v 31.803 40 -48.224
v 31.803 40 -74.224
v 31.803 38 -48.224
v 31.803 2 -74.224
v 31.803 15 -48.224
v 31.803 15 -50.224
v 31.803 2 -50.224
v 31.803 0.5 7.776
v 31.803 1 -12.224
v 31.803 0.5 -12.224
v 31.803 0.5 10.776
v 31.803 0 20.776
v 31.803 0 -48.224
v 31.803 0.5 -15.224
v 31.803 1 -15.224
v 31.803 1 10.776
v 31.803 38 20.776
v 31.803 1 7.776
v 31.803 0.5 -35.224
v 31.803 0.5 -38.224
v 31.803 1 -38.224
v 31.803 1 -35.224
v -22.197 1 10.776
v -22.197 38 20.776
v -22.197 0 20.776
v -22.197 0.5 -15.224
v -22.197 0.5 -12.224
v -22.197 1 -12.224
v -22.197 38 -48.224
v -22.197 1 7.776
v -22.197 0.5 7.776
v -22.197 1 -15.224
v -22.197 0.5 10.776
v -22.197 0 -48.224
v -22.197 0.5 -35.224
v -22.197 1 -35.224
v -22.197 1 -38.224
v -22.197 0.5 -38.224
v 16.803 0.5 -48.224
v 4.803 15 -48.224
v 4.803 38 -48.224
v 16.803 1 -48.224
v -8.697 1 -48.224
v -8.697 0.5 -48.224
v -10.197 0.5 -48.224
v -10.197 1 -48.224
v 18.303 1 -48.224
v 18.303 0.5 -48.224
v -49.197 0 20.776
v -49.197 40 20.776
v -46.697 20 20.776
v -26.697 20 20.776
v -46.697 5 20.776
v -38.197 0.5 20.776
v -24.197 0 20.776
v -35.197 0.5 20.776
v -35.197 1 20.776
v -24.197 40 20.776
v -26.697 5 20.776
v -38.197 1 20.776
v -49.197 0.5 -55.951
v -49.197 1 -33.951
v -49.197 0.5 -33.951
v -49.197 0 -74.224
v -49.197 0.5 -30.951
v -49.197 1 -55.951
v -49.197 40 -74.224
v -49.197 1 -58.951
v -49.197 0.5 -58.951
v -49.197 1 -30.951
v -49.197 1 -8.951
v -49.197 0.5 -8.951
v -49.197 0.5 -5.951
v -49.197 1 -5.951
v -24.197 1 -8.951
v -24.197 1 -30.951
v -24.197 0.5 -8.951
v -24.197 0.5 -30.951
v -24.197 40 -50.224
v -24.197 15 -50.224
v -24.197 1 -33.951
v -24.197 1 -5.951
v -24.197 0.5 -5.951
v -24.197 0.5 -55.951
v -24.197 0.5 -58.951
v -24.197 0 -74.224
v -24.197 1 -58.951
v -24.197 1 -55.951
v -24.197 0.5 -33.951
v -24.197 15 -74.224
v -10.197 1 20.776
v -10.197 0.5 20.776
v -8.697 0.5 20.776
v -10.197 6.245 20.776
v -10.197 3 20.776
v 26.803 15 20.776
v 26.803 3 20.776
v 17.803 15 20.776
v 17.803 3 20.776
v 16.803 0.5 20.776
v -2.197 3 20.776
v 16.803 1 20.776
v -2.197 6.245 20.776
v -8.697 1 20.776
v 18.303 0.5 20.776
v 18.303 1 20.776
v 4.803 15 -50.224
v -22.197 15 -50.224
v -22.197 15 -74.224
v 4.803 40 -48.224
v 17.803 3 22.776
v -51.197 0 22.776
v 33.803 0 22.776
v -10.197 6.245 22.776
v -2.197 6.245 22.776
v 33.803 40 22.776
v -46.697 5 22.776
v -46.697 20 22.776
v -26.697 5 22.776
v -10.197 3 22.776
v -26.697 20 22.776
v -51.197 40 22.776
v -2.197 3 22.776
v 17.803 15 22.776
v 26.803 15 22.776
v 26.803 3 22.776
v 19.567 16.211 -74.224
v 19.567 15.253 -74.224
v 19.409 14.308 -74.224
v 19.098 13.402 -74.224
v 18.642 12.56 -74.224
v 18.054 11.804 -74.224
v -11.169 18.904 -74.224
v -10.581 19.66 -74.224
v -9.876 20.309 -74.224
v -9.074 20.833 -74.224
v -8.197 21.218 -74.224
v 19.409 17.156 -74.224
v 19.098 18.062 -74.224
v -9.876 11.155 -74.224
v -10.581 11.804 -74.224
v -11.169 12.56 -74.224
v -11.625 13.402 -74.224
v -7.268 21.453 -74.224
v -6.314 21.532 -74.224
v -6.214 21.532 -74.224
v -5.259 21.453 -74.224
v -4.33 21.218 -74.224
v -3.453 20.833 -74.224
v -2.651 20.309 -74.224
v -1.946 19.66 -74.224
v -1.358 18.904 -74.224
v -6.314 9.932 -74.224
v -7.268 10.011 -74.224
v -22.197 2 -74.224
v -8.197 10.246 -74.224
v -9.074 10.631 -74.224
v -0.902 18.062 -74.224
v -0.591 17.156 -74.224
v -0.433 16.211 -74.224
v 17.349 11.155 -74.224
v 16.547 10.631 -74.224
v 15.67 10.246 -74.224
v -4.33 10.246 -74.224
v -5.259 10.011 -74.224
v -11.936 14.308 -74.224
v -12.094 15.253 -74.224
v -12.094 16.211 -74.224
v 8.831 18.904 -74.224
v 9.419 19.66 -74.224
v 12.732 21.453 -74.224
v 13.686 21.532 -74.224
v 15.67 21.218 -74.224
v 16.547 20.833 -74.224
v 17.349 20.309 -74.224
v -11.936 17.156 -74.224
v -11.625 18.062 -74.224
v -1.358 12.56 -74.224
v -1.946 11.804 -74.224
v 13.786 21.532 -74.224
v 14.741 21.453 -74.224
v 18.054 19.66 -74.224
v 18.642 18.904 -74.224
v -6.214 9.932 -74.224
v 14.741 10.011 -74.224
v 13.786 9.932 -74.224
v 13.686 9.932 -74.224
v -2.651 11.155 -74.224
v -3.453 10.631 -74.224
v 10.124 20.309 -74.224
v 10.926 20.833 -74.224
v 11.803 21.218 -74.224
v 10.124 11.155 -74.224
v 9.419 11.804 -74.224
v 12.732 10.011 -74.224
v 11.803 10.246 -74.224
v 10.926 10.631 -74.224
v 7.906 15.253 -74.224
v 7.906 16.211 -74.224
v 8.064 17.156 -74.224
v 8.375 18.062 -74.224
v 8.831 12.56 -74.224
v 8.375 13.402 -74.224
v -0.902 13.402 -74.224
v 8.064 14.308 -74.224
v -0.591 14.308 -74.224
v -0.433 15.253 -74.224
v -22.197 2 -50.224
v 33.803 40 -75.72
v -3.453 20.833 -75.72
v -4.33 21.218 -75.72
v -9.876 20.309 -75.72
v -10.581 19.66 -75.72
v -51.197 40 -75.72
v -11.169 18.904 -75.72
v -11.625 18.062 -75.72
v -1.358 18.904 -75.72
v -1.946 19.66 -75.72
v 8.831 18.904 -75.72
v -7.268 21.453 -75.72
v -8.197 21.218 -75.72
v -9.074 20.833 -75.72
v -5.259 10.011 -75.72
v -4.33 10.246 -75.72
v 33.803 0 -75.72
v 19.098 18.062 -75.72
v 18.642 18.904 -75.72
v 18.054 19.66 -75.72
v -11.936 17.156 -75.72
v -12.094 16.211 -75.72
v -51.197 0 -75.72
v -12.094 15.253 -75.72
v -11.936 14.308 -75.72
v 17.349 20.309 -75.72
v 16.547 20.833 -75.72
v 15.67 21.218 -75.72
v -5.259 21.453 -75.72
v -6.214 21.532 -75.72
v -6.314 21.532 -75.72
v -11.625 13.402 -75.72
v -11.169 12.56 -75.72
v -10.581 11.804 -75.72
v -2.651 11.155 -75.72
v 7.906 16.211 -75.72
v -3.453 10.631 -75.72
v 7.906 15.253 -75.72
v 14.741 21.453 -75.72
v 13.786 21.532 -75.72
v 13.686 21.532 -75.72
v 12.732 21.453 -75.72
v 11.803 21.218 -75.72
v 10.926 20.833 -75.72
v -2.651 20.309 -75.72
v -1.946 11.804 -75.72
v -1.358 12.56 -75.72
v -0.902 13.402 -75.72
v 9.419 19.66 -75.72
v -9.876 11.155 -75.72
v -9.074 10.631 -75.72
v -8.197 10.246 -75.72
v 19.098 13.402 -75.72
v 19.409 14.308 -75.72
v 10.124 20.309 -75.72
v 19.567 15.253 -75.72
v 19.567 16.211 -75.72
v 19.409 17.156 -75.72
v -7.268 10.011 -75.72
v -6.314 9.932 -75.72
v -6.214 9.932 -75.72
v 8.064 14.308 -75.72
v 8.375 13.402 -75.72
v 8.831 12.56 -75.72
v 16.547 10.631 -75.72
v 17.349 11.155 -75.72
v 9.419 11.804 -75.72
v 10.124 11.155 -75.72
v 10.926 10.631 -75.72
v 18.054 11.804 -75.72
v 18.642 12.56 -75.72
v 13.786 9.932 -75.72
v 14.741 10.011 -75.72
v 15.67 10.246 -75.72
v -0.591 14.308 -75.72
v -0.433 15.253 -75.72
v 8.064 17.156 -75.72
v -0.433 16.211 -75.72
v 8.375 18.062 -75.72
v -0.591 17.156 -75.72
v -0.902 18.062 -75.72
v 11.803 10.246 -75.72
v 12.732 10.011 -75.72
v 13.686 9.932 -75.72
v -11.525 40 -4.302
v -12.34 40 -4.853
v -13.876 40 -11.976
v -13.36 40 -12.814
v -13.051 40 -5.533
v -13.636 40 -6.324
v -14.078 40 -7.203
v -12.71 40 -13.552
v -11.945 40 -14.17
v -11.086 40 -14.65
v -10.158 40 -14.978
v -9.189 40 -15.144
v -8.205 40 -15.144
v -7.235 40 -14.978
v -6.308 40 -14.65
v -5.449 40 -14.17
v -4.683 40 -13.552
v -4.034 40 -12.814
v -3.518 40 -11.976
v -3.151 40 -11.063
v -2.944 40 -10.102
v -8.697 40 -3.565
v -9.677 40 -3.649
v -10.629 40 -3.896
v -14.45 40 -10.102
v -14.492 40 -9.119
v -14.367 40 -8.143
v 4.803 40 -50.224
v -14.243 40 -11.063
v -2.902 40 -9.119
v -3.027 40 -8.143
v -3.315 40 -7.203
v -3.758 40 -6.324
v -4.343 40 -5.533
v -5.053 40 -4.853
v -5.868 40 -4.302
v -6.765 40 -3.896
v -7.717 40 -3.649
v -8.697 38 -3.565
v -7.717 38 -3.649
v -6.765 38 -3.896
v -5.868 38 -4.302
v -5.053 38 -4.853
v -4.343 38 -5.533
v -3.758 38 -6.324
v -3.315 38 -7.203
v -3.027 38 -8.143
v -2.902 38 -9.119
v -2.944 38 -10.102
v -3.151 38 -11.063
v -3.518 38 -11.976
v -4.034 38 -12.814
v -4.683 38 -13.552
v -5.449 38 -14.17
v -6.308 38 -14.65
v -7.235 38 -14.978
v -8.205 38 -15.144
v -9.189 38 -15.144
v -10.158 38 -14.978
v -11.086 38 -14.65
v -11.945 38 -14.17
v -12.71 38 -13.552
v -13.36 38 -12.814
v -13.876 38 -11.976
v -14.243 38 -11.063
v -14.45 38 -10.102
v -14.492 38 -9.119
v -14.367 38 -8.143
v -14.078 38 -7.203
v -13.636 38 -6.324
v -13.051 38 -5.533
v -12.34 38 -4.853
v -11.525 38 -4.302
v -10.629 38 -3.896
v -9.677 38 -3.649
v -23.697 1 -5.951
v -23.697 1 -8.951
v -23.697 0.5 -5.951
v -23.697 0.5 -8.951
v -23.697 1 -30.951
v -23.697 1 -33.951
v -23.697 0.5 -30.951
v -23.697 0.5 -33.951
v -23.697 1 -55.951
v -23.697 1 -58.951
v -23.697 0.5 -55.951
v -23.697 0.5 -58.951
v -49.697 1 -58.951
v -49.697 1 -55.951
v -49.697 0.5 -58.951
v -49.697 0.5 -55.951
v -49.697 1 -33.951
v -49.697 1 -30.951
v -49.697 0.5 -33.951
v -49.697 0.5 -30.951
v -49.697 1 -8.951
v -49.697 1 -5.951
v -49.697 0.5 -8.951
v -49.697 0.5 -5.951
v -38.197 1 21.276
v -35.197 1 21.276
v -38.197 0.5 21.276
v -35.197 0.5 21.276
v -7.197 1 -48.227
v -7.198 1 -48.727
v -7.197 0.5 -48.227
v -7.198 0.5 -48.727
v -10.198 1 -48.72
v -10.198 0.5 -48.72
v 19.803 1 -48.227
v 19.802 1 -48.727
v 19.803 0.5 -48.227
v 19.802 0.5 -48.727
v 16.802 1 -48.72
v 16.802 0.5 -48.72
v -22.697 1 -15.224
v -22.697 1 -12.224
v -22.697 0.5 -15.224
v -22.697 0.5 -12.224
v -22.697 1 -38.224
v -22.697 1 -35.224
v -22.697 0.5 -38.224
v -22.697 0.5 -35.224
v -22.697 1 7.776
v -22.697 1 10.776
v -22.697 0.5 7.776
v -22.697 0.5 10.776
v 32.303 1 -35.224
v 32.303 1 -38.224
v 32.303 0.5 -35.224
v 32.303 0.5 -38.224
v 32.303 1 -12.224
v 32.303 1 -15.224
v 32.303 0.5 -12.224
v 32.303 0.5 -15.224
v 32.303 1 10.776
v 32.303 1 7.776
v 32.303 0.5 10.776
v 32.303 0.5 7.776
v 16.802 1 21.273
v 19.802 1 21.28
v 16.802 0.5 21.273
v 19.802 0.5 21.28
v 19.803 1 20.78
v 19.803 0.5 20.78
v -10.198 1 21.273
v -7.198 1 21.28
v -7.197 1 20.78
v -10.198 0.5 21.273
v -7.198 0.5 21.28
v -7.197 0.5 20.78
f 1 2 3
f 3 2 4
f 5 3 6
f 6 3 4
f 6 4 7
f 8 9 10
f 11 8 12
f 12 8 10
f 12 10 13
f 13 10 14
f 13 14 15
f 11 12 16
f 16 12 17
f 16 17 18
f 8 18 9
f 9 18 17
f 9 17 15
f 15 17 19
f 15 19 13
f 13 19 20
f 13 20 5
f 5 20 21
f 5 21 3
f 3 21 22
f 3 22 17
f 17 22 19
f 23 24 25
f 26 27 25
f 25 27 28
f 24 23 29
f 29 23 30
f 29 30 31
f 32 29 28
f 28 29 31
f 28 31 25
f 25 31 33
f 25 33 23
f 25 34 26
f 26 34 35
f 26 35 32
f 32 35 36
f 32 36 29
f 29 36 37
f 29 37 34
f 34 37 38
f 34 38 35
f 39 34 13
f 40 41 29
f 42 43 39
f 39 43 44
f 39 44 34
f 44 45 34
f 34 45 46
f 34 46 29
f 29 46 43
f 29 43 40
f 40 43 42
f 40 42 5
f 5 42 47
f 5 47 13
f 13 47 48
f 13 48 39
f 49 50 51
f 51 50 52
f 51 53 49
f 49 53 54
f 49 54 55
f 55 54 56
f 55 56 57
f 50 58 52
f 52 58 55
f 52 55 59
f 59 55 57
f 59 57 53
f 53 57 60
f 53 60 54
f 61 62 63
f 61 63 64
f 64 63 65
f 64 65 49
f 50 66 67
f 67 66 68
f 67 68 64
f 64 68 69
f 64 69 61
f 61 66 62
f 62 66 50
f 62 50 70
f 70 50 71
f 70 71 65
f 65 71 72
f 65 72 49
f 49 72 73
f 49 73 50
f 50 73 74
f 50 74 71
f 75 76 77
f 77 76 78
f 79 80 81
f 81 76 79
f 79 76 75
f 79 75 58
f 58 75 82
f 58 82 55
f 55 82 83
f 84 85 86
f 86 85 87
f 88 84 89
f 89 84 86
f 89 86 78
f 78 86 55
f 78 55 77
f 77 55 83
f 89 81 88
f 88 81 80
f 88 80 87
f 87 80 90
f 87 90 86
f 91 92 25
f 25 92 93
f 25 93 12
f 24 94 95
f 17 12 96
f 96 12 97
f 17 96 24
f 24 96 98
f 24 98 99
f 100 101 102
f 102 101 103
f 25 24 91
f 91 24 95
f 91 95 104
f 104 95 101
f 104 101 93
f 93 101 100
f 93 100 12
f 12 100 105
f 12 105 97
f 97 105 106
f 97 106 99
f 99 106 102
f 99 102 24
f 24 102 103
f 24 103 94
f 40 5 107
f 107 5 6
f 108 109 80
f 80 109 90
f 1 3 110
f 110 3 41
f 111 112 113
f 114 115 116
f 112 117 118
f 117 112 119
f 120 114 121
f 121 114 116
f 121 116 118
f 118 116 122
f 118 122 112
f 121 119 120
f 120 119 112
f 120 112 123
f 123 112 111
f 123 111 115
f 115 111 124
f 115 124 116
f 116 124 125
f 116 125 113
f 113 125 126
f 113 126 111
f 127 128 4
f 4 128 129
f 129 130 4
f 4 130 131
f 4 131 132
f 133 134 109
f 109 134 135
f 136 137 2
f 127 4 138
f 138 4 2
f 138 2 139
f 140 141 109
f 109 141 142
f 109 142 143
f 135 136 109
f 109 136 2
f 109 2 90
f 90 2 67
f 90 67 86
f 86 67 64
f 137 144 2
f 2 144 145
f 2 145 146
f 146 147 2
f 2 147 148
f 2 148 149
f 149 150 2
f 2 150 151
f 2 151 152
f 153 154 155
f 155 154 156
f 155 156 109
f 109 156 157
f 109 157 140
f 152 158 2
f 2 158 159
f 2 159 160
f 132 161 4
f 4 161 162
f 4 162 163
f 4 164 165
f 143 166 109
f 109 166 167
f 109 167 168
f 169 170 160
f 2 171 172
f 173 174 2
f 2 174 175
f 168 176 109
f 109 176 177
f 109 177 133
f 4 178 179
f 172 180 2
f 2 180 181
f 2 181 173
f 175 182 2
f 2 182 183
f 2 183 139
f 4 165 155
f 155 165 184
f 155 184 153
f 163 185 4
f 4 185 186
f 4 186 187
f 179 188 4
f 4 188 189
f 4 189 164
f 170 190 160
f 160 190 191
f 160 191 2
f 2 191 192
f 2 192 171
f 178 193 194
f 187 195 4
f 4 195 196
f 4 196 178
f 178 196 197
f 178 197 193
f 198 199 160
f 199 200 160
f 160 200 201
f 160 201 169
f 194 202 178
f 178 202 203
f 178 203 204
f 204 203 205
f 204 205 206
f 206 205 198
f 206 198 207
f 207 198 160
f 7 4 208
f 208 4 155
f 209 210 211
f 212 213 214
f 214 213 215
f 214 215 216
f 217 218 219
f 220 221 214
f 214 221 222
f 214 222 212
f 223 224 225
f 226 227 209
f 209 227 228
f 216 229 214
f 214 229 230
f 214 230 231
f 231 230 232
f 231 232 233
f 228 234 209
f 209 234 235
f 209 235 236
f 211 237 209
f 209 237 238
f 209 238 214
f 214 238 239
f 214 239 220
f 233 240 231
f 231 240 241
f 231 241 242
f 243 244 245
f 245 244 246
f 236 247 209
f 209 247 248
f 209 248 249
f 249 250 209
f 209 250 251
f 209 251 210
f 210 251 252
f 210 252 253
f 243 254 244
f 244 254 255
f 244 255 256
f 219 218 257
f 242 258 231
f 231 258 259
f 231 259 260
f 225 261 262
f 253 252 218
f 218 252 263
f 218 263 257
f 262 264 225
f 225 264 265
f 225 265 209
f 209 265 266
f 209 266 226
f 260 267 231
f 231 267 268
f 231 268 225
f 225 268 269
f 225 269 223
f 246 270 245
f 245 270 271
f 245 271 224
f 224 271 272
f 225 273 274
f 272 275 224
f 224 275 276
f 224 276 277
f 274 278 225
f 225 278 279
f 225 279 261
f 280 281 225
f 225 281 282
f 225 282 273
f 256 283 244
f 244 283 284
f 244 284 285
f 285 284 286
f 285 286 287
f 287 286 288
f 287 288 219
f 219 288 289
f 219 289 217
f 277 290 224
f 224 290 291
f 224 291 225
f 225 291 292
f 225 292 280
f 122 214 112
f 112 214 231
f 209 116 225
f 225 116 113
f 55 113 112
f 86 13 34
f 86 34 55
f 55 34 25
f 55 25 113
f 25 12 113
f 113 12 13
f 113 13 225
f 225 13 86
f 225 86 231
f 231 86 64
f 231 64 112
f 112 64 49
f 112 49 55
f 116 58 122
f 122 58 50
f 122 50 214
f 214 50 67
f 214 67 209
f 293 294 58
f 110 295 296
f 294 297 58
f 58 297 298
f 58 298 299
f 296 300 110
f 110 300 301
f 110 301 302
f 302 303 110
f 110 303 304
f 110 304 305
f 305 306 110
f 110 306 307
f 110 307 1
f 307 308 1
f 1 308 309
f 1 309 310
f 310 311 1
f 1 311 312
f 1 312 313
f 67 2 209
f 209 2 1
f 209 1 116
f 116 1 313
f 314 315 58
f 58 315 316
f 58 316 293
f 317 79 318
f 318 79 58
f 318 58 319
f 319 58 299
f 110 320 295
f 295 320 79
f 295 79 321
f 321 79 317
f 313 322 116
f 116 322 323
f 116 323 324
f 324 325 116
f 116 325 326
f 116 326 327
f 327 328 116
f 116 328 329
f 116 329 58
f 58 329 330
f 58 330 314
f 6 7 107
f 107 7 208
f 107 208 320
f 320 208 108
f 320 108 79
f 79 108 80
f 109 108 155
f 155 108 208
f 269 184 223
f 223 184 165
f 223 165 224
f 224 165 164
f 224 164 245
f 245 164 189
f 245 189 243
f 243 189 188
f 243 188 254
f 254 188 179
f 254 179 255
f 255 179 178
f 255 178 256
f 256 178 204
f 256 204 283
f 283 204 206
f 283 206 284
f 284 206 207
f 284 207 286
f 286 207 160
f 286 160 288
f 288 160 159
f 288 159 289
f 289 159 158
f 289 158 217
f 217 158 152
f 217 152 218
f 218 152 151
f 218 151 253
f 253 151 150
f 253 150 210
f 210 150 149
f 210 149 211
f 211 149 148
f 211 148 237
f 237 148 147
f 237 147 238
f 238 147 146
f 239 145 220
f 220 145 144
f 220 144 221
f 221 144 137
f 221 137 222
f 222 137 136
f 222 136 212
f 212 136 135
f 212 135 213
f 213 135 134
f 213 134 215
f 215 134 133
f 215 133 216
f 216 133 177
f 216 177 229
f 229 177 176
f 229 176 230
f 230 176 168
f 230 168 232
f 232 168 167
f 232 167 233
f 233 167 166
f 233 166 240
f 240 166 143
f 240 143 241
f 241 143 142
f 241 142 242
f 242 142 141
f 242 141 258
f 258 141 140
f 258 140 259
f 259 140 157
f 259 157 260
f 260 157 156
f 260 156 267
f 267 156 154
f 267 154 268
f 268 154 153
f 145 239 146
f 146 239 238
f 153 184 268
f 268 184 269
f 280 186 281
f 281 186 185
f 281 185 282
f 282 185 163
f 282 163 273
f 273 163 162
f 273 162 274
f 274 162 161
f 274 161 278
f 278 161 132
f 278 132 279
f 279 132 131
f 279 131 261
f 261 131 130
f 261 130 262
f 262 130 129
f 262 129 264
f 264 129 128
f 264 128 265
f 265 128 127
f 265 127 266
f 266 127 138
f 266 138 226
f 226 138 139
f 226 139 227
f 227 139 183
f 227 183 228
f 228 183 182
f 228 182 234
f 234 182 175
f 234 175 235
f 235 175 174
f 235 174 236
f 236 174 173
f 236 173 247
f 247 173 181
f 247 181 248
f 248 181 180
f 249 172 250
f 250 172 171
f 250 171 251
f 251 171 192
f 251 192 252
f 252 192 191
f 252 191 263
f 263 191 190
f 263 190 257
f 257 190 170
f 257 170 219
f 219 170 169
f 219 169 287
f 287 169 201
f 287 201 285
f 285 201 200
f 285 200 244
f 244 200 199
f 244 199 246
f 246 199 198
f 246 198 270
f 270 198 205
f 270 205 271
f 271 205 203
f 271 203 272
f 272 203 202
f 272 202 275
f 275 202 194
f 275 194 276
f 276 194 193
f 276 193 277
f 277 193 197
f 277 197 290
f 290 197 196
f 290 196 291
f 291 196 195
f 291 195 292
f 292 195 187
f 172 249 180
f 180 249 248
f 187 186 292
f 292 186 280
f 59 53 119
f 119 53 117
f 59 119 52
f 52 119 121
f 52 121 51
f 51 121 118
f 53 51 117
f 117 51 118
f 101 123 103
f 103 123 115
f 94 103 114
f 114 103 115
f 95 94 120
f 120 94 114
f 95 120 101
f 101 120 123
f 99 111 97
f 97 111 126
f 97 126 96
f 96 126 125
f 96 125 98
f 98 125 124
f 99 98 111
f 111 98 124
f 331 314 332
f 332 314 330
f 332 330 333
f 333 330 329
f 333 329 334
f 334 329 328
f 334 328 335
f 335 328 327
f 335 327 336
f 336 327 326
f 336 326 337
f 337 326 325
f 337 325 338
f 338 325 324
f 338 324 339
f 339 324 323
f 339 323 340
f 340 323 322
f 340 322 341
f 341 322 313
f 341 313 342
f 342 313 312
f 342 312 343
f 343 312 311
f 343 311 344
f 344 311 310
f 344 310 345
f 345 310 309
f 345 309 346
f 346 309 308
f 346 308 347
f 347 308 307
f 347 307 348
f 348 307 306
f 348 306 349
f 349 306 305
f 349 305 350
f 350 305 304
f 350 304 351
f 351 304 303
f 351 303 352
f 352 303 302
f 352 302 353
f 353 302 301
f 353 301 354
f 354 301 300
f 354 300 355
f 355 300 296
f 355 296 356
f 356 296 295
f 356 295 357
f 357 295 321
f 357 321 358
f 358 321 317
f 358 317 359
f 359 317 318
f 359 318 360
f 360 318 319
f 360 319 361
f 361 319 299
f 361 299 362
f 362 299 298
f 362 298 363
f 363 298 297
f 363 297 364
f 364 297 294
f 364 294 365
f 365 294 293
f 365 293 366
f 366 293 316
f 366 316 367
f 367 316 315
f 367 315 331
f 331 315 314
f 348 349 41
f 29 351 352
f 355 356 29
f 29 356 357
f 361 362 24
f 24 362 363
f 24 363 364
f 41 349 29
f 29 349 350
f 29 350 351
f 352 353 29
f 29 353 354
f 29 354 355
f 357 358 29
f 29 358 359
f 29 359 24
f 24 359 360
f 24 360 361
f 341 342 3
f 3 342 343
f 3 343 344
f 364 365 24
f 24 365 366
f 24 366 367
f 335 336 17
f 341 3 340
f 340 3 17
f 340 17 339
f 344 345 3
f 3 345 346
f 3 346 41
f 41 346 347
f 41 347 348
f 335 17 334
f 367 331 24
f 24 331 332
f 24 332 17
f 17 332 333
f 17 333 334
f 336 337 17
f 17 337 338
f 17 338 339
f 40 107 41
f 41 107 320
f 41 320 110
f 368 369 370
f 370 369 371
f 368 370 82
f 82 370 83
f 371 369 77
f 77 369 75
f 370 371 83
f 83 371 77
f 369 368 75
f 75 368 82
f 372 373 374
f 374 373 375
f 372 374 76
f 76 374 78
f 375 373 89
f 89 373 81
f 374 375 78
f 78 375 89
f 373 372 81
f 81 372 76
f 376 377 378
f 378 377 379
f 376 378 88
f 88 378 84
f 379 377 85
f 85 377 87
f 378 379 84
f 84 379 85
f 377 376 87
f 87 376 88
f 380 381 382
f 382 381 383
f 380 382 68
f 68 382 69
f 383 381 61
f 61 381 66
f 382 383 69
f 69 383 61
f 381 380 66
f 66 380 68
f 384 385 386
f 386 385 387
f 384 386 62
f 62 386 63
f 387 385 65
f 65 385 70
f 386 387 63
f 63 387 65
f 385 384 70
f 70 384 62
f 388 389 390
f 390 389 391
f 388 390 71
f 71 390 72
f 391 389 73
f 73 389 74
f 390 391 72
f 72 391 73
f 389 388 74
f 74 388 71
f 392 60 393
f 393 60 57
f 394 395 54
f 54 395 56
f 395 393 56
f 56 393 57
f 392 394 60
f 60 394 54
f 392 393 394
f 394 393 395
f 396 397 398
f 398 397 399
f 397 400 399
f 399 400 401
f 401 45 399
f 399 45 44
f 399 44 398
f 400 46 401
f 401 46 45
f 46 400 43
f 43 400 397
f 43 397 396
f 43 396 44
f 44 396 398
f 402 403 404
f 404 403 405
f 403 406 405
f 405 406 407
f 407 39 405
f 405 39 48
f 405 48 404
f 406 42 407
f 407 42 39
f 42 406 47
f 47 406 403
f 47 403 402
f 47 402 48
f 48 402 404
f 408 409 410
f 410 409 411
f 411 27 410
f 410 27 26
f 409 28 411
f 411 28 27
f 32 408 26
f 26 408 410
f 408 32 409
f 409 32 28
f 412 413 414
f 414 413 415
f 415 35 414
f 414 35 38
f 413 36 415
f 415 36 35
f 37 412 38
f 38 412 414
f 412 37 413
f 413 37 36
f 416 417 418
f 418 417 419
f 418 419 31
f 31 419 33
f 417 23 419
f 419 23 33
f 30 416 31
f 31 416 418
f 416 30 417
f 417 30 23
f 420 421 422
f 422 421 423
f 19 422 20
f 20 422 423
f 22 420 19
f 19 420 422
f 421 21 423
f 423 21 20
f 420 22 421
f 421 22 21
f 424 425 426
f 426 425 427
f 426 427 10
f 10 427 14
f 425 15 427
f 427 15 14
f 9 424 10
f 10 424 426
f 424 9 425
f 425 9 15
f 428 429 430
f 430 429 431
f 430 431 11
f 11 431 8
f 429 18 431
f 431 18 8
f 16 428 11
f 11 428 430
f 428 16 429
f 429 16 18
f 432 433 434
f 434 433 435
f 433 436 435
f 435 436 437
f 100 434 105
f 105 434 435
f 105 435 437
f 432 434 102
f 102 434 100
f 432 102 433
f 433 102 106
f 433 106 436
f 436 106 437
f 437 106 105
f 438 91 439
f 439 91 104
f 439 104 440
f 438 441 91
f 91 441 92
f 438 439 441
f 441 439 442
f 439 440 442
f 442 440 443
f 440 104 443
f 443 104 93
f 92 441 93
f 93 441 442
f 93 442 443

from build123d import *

# Parameters (mm, degrees)
SKETCH_1_W                   = 85
SKETCH_1_H                   = 98.49643328
EXTRUDE_1_DEPTH              = 2
SKETCH_1_6_W                 = 2
SKETCH_1_6_H                 = 95
EXTRUDE_2_DEPTH              = 40
SKETCH_1_7_W                 = 54
SKETCH_1_7_H                 = 2
BOSS_EXTRUDE1_DEPTH          = 15
F_10_0_START                 = -75.720313778
F_10_0_MM_DOWEL_HOLES1_DEPTH = 1.49643328
SKETCH5_W                    = 9
SKETCH5_H                    = 12
SKETCH5_W_2                  = 8
SKETCH5_H_2                  = 3.244606683
SKETCH5_W_3                  = 20
SKETCH5_H_3                  = 15
CUT_EXTRUDE1_DEPTH           = 15
SKETCH8_W                    = 25
SKETCH8_H                    = 95
SKETCH8_W_2                  = 54
SKETCH8_H_2                  = 69
CUT_EXTRUDE2_DEPTH           = 10
BOSS_EXTRUDE2_DEPTH          = 25
SKETCH11_R                   = 5.8
BOSS_EXTRUDE3_DEPTH          = 2
CAVITY1_START                = -49.696743418
CAVITY1_OUTLINE_W            = 0.5
CAVITY1_OUTLINE_H            = 3
CAVITY1_DEPTH                = 26
CAVITY1_START_2              = -38.196743418
CAVITY1_2_OUTLINE_W          = 0.5
CAVITY1_2_OUTLINE_H          = 0.5
CAVITY1_2_DEPTH              = 3
CAVITY2_START                = 0.5
CAVITY2_OUTLINE_W            = 0.5
CAVITY2_OUTLINE_H            = 3
CAVITY2_DEPTH                = 0.5


# Read off the part's stored shape, not the designer's step: Ø10.0 mm Dowel Holes1, Cavity1, Cavity2
with BuildPart() as part:
    # ｽｹｯﾁ1 → ﾎﾞｽ - 押し出し1 (new body)
    with BuildSketch(Plane(origin=(0, 0, 0), x_dir=(1, 0, 0), z_dir=(0, 1, 0))):
        with Locations((-8.696743418, 26.472097138)):
            Rectangle(SKETCH_1_W, SKETCH_1_H)
    extrude(amount=EXTRUDE_1_DEPTH)

    # ｽｹｯﾁ1<6> → ﾎﾞｽ - 押し出し2 (add)
    with BuildSketch(Plane(origin=(0, 0, 0), x_dir=(1, 0, 0), z_dir=(0, 1, 0))):
        with Locations((-50.196743418, 26.723880498)):
            Rectangle(SKETCH_1_6_W, SKETCH_1_6_H)
        Polygon((33.803256582, -20.776119502), (31.803256582, -20.776119502), (-22.196743418, -20.776119502), (-24.196743418, -20.776119502), (-49.196743418, -20.776119502), (-51.196743418, -20.776119502), (-51.196743418, -22.776119502), (33.803256582, -22.776119502), align=None)
        Polygon((-22.196743418, 74.223880498), (31.803256582, 74.223880498), (31.803256582, 75.720313778), (-51.196743418, 75.720313778), (-51.196743418, 74.223880498), (-49.196743418, 74.223880498), (-24.196743418, 74.223880498), align=None)
        Polygon((31.803256582, 50.223880498), (31.803256582, 48.223880498), (31.803256582, -20.776119502), (33.803256582, -20.776119502), (33.803256582, 75.720313778), (31.803256582, 75.720313778), (31.803256582, 74.223880498), align=None)
    extrude(amount=EXTRUDE_2_DEPTH)

    # ｽｹｯﾁ1<7> → Boss-Extrude1 (add)
    with BuildSketch(Plane(origin=(0, 0, 0), x_dir=(1, 0, 0), z_dir=(0, 1, 0))):
        with Locations((4.803256582, 49.223880498)):
            Rectangle(SKETCH_1_7_W, SKETCH_1_7_H)
        Polygon((-22.196743418, -20.776119502), (-22.196743418, 48.223880498), (-22.196743418, 50.223880498), (-22.196743418, 74.223880498), (-24.196743418, 74.223880498), (-24.196743418, -20.776119502), align=None)
    extrude(amount=BOSS_EXTRUDE1_DEPTH)

    # Ø10.0 mm Dowel Holes1 outline → Ø10.0 mm Dowel Holes1 (cut)
    with BuildSketch(Plane.XY.offset(F_10_0_START)):
        with BuildLine():
            Line((-6.31353142, 9.931926182), (-6.21353142, 9.931926182))
            ThreePointArc((-6.21353142, 9.931926182), (-0.41353142, 15.731926182), (-6.21353142, 21.531926182))
            Line((-6.21353142, 21.531926182), (-6.31353142, 21.531926182))
            ThreePointArc((-6.31353142, 21.531926182), (-12.11353142, 15.731926182), (-6.31353142, 9.931926182))
        make_face()
        with BuildLine():
            ThreePointArc((13.78646858, 9.931926182), (19.58646858, 15.731926182), (13.78646858, 21.531926182))
            Line((13.78646858, 21.531926182), (13.68646858, 21.531926182))
            ThreePointArc((13.68646858, 21.531926182), (7.88646858, 15.731926182), (13.68646858, 9.931926182))
            Line((13.68646858, 9.931926182), (13.78646858, 9.931926182))
        make_face()
    extrude(amount=F_10_0_MM_DOWEL_HOLES1_DEPTH, mode=Mode.SUBTRACT)

    # Sketch5 → Cut-Extrude1 (cut)
    with BuildSketch(Plane(origin=(0, 0, 20.776119502), x_dir=(-1, 0, 0), z_dir=(0, 0, -1))):
        with Locations((-22.303256582, 9)):
            Rectangle(SKETCH5_W, SKETCH5_H)
        with Locations((6.196743418, 4.622303342)):
            Rectangle(SKETCH5_W_2, SKETCH5_H_2)
        with Locations((36.696743418, 12.5)):
            Rectangle(SKETCH5_W_3, SKETCH5_H_3)
    extrude(amount=-CUT_EXTRUDE1_DEPTH, mode=Mode.SUBTRACT)

    # Sketch8 → Cut-Extrude2 (cut)
    with BuildSketch(Plane(origin=(0, 2, 0), x_dir=(1, 0, 0), z_dir=(0, 1, 0))):
        with Locations((-36.696743418, 26.723880498)):
            Rectangle(SKETCH8_W, SKETCH8_H)
        with Locations((4.803256582, 13.723880498)):
            Rectangle(SKETCH8_W_2, SKETCH8_H_2)
    extrude(amount=-CUT_EXTRUDE2_DEPTH, mode=Mode.SUBTRACT)



with BuildPart() as body_2:
    # Sketch9 → Boss-Extrude2 (new body)
    with BuildSketch(Plane(origin=(0, 15, 0), x_dir=(1, 0, 0), z_dir=(0, 1, 0))):
        Polygon((-22.196743418, -20.776119502), (-22.196743418, 48.223880498), (4.803256582, 48.223880498), (4.803256582, 50.223880498), (-24.196743418, 50.223880498), (-24.196743418, -20.776119502), align=None)
    extrude(amount=BOSS_EXTRUDE2_DEPTH)


with BuildPart() as part_1:
    add(part.part)

    add(body_2.part)  # Boss-Extrude3 merges body 2
    # Sketch11 → Boss-Extrude3 (add)
    with BuildSketch(Plane(origin=(0, 40, 0), x_dir=(1, 0, 0), z_dir=(0, 1, 0))):
        Polygon((31.803256582, 48.223880498), (-22.196743418, 48.223880498), (-22.196743418, 9.365118158), (-22.196743418, -20.776119502), (31.803256582, -20.776119502), align=None)
        with Locations(Location((-8.696743418, 9.365118158, 0), (0, 0, 270))):
            Circle(SKETCH11_R, mode=Mode.SUBTRACT)
    extrude(amount=-BOSS_EXTRUDE3_DEPTH)

    # Cavity1 outline → Cavity1 (cut)
    with BuildSketch(Plane.YZ.offset(CAVITY1_START)):
        with Locations((0.75, -7.451121589)):
            Rectangle(CAVITY1_OUTLINE_W, CAVITY1_OUTLINE_H)
        with Locations((0.75, -32.451121589)):
            Rectangle(CAVITY1_OUTLINE_W, CAVITY1_OUTLINE_H)
        with Locations((0.75, -57.451121589)):
            Rectangle(CAVITY1_OUTLINE_W, CAVITY1_OUTLINE_H)
    extrude(amount=CAVITY1_DEPTH, mode=Mode.SUBTRACT)

    # Cavity1 2 outline → Cavity1 2 (cut)
    with BuildSketch(Plane.YZ.offset(CAVITY1_START_2)):
        with Locations((0.75, 21.026119502)):
            Rectangle(CAVITY1_2_OUTLINE_W, CAVITY1_2_OUTLINE_H)
    extrude(amount=CAVITY1_2_DEPTH, mode=Mode.SUBTRACT)

    # Cavity2 outline → Cavity2 (cut)
    with BuildSketch(Plane(origin=(0, 0, 0), x_dir=(1, 0, 0), z_dir=(0, 1, 0)).offset(CAVITY2_START)):
        Polygon((-7.196747436, 48.227352565), (-7.197904792, 48.727351226), (-10.197896755, 48.720407091), (-10.196747436, 48.223880498), (-8.696743418, 48.223880498), align=None)
        Polygon((16.802103245, 48.720407091), (16.803252564, 48.223880498), (18.303256582, 48.223880498), (19.803252564, 48.227352565), (19.802095208, 48.727351226), align=None)
        with Locations((-22.446743418, 36.723880498)):
            Rectangle(CAVITY2_OUTLINE_W, CAVITY2_OUTLINE_H)
        with Locations((32.053256582, 36.723880498)):
            Rectangle(CAVITY2_OUTLINE_W, CAVITY2_OUTLINE_H)
        with Locations((-22.446743418, 13.723880498)):
            Rectangle(CAVITY2_OUTLINE_W, CAVITY2_OUTLINE_H)
        with Locations((32.053256582, 13.723880498)):
            Rectangle(CAVITY2_OUTLINE_W, CAVITY2_OUTLINE_H)
        with Locations((-22.446743418, -9.276119502)):
            Rectangle(CAVITY2_OUTLINE_W, CAVITY2_OUTLINE_H)
        with Locations((32.053256582, -9.276119502)):
            Rectangle(CAVITY2_OUTLINE_W, CAVITY2_OUTLINE_H)
        Polygon((-8.696743418, -20.776119502), (-10.196747436, -20.776119502), (-10.197896755, -21.272646095), (-7.197904792, -21.27959023), (-7.196747436, -20.779591569), align=None)
        Polygon((19.803252564, -20.779591569), (18.303256578, -20.776119502), (16.803252564, -20.776119502), (16.802103245, -21.272646095), (19.802095208, -21.27959023), align=None)
    extrude(amount=CAVITY2_DEPTH, mode=Mode.SUBTRACT)


solid = part_1.part
